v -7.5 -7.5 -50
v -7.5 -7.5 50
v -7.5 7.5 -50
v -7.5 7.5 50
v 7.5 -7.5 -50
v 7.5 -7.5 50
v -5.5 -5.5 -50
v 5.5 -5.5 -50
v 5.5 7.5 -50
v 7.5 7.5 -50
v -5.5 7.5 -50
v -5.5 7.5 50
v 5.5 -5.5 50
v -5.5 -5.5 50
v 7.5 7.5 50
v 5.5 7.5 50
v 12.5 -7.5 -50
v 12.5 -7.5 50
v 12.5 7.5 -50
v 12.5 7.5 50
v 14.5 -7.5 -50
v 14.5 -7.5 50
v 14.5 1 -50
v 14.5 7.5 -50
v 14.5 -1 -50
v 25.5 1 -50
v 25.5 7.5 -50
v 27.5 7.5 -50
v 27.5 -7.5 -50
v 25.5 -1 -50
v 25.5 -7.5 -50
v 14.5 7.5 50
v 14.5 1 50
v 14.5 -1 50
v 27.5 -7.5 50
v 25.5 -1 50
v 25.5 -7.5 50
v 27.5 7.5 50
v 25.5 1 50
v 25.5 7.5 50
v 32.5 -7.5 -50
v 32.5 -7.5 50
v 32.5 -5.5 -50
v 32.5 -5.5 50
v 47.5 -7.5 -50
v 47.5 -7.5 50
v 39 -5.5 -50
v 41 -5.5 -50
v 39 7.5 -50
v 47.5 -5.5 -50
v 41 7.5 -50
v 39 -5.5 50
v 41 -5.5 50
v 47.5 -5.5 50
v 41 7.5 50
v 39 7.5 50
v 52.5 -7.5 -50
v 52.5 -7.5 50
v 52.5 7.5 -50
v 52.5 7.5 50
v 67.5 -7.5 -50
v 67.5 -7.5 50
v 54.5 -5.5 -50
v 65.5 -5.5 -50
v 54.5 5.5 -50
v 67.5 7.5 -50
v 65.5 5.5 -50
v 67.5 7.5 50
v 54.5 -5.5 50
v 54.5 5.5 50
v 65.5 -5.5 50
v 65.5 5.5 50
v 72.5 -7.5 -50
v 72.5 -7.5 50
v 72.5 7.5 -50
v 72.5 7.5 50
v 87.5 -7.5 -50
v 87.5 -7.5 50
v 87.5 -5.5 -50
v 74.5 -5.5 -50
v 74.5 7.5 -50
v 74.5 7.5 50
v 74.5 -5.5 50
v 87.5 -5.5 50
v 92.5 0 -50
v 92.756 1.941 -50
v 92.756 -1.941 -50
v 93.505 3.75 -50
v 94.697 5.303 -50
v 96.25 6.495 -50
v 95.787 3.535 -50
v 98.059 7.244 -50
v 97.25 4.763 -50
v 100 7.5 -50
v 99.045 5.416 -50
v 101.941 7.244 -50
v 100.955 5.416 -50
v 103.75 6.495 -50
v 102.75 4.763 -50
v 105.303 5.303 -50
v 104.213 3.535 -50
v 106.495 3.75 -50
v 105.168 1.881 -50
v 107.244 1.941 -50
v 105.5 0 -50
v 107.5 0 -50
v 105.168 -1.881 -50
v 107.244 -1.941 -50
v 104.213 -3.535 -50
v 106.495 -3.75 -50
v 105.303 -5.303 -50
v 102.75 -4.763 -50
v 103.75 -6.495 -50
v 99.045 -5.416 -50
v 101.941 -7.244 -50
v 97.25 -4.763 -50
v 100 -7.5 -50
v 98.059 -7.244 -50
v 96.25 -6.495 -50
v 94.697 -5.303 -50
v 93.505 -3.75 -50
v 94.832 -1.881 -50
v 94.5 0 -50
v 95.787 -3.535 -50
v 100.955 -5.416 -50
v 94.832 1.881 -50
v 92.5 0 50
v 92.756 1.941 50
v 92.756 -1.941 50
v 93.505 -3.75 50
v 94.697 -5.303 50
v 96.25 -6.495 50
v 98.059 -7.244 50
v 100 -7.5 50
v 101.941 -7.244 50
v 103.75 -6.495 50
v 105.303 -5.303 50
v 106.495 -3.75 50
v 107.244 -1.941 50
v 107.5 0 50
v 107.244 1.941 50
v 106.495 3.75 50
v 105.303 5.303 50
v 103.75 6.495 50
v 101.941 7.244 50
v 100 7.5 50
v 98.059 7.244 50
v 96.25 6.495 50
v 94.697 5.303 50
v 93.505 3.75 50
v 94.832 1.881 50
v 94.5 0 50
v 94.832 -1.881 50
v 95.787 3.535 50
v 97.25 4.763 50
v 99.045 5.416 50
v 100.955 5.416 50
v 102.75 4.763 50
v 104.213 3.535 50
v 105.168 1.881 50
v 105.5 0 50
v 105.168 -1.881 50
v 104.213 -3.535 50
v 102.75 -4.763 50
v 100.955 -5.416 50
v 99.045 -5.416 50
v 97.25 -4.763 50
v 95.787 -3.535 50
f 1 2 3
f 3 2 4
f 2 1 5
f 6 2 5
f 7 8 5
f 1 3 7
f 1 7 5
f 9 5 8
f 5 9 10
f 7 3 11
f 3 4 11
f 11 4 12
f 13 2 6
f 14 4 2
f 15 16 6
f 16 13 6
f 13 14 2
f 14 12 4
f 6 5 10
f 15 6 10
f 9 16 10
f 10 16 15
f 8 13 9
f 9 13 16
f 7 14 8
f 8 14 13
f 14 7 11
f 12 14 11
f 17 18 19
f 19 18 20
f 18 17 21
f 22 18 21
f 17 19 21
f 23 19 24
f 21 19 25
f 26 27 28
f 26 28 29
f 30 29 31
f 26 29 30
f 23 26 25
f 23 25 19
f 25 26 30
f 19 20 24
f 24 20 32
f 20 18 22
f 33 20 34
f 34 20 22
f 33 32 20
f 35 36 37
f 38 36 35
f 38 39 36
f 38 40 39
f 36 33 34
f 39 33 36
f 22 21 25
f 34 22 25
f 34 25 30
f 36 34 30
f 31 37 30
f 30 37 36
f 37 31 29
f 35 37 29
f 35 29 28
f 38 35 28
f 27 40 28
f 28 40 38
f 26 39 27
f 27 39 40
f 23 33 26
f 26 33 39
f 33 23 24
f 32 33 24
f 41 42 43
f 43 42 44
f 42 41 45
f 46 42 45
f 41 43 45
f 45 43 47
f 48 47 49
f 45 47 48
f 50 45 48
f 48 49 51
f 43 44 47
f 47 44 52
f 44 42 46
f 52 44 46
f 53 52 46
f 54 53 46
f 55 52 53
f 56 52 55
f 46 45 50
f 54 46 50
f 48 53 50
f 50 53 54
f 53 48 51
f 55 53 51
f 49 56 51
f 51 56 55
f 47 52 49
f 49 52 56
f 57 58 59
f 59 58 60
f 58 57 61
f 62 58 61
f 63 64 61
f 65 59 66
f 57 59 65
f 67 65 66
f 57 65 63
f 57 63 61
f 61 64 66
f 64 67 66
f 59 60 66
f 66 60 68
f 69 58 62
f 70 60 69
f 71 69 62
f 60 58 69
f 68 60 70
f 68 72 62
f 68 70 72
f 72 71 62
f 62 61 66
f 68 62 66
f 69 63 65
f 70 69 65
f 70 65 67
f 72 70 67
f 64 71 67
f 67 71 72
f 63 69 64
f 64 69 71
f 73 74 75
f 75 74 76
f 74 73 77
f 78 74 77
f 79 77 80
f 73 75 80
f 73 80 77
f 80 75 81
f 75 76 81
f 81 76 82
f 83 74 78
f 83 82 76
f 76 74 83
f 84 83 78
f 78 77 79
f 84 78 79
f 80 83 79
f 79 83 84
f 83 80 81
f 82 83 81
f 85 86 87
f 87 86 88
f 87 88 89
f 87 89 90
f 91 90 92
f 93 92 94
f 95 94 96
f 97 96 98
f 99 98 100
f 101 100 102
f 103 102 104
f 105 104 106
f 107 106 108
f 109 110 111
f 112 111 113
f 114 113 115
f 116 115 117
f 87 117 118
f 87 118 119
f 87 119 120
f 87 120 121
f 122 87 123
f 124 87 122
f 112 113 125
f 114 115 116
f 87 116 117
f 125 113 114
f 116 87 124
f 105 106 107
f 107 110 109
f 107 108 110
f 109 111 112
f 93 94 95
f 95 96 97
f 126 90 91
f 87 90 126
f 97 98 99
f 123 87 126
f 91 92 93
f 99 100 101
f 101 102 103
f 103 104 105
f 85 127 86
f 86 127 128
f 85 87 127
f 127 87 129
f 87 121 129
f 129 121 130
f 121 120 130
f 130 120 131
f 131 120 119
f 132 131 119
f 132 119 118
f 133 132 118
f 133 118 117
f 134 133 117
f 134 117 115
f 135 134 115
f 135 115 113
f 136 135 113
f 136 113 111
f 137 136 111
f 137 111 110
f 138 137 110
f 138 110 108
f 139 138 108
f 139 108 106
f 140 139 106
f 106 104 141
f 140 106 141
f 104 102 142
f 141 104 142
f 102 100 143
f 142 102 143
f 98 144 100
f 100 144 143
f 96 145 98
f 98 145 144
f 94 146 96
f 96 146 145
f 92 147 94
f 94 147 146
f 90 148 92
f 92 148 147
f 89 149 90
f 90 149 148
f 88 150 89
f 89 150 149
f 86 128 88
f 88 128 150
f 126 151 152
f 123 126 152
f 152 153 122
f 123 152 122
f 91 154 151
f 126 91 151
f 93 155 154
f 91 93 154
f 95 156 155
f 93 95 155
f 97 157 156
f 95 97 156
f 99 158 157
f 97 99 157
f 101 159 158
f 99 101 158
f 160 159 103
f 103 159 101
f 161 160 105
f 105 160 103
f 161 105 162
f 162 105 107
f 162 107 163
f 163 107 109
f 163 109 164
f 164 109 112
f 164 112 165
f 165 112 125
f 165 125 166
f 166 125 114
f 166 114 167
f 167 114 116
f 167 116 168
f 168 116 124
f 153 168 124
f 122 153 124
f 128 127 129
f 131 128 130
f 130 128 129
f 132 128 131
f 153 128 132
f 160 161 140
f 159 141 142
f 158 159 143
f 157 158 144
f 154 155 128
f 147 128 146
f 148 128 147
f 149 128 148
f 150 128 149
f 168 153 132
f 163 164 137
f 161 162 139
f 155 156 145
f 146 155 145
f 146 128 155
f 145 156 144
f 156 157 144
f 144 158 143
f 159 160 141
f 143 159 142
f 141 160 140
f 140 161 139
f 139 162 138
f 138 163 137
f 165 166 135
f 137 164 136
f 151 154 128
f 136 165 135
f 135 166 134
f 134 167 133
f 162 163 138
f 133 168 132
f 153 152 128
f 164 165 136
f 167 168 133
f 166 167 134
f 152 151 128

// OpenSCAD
module HProfile(w, h, d, l, space)
{
	union()
	{
		cube([w + space*2, d + space*2, l], center = true);
		translate([-w/2+d/2,0,0])cube([d + space*2, h + space*2, l], center = true);
		translate([+w/2-d/2,0,0])cube([d + space*2, h + space*2, l], center = true);
	}
}
module UProfile(w, h, d, l, space)
{
	union()
	{
		translate([0,-h/2+d/2,0])cube([w + space*2, d + space*2, l], center = true);
		translate([-w/2+d/2,0,0])cube([d + space*2, h + space*2, l], center = true);
		translate([+w/2-d/2,0,0])cube([d + space*2, h + space*2, l], center = true);
	}
}
module LProfile(w, h, d, l, space)
{
	union()
	{
		translate([0,-h/2+d/2,0])cube([w + space*2, d + space*2, l], center = true);
		translate([-w/2+d/2,0,0])cube([d + space*2, h + space*2, l], center = true);
	}
}
module OProfile(w, h, d, l, space)
{
	union()
	{
		translate([0,-h/2+d/2,0])cube([w + space*2, d + space*2, l], center = true);
		translate([0,+h/2-d/2,0])cube([w + space*2, d + space*2, l], center = true);
		translate([-w/2+d/2,0,0])cube([d + space*2, h + space*2, l], center = true);
		translate([+w/2-d/2,0,0])cube([d + space*2, h + space*2, l], center = true);
	}
}
module TProfile(w, h, d, l, space)
{
	union()
	{
		translate([0,-h/2+d/2,0])cube([w + space*2, d + space*2, l], center = true);
		cube([d + space*2, h + space*2, l], center = true);
	}
}
module Tube(outerD, innerD, l, space)
{
	difference()
	{
		cylinder(h = l, r = outerD/2 + space, center = true);
		cylinder(h = l, r = innerD/2 - space, center = true);
	}
}

union()
{
	UProfile(w = 15, h = 15, d = 2, l = 100, space = 0);
	translate([20,0,0])
	HProfile(w = 15, h = 15, d = 2, l = 100, space = 0);
	translate([40,0,0])
	TProfile(w = 15, h = 15, d = 2, l = 100, space = 0);
	translate([60,0,0])
	OProfile(w = 15, h = 15, d = 2, l = 100, space = 0);
	translate([80,0,0])
	LProfile(w = 15, h = 15, d = 2, l = 100, space = 0);
	translate([100,0,0])
	Tube(outerD = 15, innerD = 11, l = 100, space = 0);
}
